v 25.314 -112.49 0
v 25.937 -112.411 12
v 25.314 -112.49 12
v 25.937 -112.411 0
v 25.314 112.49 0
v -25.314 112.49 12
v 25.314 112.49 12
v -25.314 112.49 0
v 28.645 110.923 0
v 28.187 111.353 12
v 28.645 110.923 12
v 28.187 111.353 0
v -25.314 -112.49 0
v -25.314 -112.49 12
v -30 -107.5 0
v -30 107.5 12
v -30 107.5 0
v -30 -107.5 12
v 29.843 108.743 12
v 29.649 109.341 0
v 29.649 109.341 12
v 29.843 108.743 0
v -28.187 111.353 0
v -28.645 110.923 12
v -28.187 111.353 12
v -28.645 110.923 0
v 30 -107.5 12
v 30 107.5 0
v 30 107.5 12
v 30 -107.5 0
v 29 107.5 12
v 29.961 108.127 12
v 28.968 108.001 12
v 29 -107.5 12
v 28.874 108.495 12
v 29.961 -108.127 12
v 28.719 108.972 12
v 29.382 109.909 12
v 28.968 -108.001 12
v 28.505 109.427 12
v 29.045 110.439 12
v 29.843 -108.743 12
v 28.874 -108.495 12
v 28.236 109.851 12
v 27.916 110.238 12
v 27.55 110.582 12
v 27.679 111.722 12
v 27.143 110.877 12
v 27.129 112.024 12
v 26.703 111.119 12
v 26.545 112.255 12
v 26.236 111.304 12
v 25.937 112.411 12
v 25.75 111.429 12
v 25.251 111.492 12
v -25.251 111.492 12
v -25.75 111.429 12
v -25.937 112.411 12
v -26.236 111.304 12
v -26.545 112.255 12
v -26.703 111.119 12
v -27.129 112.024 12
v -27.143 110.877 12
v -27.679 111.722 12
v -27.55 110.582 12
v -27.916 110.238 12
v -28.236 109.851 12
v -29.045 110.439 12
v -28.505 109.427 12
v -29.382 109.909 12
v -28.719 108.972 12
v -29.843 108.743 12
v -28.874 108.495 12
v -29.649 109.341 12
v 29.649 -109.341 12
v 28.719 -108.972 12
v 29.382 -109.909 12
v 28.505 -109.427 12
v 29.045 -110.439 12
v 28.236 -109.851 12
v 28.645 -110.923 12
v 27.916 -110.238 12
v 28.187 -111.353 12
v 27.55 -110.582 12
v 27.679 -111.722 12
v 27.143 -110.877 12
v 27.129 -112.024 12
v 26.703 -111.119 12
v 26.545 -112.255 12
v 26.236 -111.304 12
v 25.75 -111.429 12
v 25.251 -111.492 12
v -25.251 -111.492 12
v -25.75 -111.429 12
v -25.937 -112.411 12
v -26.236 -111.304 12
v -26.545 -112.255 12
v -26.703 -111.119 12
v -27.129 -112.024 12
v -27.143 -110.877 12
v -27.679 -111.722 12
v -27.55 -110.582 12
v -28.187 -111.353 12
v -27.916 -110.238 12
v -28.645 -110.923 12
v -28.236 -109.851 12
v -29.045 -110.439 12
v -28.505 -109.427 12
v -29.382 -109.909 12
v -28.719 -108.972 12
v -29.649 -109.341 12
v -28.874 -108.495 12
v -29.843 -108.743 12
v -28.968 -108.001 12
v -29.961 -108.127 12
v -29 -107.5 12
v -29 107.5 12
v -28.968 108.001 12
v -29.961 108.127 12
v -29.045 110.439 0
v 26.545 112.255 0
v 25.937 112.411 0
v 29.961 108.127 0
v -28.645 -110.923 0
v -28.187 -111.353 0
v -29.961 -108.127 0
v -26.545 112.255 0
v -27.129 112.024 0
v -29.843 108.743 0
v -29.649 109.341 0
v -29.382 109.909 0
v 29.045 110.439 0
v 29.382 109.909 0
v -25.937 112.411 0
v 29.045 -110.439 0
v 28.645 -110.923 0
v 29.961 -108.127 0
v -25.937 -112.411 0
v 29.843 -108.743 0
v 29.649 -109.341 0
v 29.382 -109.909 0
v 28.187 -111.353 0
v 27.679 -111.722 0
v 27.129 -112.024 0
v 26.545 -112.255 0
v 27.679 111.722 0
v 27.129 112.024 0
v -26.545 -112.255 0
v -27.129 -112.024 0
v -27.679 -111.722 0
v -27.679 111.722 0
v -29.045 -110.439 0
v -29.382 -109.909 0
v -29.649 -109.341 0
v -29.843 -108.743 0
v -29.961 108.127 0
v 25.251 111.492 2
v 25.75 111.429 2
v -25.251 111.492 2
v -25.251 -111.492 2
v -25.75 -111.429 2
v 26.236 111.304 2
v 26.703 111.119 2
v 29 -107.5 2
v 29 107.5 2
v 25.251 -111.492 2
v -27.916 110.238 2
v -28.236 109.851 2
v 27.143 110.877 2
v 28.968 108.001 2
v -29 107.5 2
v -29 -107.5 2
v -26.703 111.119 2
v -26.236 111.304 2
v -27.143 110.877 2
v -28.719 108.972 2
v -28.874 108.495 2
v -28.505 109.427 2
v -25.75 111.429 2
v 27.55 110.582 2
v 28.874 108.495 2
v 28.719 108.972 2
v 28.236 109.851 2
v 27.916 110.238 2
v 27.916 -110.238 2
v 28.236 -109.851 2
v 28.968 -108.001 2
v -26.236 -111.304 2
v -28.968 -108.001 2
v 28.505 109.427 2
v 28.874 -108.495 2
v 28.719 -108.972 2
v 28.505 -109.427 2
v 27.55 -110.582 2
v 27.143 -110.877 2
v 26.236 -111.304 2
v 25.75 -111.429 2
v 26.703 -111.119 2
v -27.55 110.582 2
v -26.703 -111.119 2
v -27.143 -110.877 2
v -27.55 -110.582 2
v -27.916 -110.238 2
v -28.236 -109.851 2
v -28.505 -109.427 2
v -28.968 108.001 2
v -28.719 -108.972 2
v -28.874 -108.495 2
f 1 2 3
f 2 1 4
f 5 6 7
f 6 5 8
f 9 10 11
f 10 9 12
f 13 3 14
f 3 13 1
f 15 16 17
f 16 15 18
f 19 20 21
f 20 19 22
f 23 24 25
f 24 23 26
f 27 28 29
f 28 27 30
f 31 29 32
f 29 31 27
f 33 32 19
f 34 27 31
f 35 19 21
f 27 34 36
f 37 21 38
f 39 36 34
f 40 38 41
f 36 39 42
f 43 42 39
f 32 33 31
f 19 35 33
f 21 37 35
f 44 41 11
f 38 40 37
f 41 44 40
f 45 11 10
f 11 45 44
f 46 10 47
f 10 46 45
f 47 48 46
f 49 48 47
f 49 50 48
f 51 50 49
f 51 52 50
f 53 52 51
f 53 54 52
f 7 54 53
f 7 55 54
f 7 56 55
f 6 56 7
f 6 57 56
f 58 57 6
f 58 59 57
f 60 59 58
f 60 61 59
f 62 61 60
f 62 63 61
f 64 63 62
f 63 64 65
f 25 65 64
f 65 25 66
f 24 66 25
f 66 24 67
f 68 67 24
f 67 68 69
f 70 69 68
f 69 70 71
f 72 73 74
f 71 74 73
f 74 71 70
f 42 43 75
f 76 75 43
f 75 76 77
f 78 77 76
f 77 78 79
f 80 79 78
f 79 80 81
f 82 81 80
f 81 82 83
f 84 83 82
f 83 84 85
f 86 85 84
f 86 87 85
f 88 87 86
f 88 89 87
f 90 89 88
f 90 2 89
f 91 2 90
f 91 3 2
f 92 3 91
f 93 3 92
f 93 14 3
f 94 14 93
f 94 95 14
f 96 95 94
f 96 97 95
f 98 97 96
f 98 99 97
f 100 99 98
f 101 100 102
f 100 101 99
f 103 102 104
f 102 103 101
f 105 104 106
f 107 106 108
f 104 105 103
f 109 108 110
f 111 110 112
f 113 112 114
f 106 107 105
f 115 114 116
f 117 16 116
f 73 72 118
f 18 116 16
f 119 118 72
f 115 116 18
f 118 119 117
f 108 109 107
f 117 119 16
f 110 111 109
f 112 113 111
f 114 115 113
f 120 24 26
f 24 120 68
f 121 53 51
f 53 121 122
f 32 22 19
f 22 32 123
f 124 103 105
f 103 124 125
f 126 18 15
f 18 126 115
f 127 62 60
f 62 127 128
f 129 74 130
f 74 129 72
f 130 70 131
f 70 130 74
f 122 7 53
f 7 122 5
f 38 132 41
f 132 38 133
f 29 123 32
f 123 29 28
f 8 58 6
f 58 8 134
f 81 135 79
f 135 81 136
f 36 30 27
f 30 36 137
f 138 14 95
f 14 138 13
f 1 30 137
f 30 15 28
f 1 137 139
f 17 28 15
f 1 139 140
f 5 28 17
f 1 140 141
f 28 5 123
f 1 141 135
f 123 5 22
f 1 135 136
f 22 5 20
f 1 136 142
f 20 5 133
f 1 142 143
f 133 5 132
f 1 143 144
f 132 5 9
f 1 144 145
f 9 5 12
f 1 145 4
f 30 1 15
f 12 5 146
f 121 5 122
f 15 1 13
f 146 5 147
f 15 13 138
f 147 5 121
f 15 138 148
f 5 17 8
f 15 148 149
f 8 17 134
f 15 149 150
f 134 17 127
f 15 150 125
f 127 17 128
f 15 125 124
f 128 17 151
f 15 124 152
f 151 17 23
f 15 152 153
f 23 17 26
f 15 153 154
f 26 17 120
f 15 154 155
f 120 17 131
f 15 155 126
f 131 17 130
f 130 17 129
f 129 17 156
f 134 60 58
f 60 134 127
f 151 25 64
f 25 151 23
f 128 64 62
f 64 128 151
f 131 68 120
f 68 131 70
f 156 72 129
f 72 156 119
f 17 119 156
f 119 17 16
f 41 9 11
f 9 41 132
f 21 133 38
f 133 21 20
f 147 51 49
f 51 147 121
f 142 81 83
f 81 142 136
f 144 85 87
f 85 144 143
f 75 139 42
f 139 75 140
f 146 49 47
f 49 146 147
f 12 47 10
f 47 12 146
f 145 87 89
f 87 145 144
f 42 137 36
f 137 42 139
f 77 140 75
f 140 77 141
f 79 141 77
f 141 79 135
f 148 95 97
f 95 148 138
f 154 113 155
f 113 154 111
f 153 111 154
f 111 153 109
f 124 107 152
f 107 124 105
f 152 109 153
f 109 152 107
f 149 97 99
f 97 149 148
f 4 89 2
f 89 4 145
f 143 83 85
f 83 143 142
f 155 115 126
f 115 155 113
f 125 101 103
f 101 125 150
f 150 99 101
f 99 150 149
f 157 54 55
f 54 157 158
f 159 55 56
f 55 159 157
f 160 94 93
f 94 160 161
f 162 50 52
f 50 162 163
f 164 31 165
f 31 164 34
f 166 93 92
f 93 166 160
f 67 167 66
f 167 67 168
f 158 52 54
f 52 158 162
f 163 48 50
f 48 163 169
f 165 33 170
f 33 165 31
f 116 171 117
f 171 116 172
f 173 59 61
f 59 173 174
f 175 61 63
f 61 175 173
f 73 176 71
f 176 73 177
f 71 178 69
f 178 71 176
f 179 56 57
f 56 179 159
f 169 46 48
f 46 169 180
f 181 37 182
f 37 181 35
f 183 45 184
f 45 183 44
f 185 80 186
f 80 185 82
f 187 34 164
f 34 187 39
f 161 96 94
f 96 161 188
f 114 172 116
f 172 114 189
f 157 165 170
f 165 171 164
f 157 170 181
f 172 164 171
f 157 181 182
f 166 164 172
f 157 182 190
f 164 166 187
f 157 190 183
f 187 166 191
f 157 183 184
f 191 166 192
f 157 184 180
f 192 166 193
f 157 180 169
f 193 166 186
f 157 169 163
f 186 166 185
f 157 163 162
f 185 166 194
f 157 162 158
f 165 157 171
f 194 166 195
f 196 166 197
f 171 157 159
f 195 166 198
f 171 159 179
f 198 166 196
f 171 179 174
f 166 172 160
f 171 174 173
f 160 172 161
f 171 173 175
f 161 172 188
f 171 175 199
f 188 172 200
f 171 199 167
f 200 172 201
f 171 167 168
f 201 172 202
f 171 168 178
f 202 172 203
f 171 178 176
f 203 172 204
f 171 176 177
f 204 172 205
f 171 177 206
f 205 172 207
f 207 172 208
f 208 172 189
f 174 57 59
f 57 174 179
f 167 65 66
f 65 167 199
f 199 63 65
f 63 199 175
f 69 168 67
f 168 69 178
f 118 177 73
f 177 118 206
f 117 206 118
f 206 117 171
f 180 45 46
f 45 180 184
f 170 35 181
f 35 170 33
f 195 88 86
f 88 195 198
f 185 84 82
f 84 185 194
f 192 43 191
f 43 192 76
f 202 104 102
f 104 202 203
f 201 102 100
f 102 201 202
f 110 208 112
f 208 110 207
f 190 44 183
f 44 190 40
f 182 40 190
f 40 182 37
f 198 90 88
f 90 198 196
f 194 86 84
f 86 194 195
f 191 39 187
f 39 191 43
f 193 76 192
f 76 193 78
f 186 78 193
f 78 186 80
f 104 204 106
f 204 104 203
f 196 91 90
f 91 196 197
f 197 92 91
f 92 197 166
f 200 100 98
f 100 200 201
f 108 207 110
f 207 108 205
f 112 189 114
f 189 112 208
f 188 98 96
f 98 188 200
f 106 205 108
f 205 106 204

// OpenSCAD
$fn = 50;


difference() {
	union() {
		hull() {
			translate(v = [-25.0000000000, 107.5000000000, 0]) {
				cylinder(h = 12, r = 5);
			}
			translate(v = [25.0000000000, 107.5000000000, 0]) {
				cylinder(h = 12, r = 5);
			}
			translate(v = [-25.0000000000, -107.5000000000, 0]) {
				cylinder(h = 12, r = 5);
			}
			translate(v = [25.0000000000, -107.5000000000, 0]) {
				cylinder(h = 12, r = 5);
			}
		}
	}
	union() {
		translate(v = [0, 0, 2]) {
			hull() {
				translate(v = [-25.0000000000, 107.5000000000, 0]) {
					cylinder(h = 10, r = 4);
				}
				translate(v = [25.0000000000, 107.5000000000, 0]) {
					cylinder(h = 10, r = 4);
				}
				translate(v = [-25.0000000000, -107.5000000000, 0]) {
					cylinder(h = 10, r = 4);
				}
				translate(v = [25.0000000000, -107.5000000000, 0]) {
					cylinder(h = 10, r = 4);
				}
			}
		}
	}
}
